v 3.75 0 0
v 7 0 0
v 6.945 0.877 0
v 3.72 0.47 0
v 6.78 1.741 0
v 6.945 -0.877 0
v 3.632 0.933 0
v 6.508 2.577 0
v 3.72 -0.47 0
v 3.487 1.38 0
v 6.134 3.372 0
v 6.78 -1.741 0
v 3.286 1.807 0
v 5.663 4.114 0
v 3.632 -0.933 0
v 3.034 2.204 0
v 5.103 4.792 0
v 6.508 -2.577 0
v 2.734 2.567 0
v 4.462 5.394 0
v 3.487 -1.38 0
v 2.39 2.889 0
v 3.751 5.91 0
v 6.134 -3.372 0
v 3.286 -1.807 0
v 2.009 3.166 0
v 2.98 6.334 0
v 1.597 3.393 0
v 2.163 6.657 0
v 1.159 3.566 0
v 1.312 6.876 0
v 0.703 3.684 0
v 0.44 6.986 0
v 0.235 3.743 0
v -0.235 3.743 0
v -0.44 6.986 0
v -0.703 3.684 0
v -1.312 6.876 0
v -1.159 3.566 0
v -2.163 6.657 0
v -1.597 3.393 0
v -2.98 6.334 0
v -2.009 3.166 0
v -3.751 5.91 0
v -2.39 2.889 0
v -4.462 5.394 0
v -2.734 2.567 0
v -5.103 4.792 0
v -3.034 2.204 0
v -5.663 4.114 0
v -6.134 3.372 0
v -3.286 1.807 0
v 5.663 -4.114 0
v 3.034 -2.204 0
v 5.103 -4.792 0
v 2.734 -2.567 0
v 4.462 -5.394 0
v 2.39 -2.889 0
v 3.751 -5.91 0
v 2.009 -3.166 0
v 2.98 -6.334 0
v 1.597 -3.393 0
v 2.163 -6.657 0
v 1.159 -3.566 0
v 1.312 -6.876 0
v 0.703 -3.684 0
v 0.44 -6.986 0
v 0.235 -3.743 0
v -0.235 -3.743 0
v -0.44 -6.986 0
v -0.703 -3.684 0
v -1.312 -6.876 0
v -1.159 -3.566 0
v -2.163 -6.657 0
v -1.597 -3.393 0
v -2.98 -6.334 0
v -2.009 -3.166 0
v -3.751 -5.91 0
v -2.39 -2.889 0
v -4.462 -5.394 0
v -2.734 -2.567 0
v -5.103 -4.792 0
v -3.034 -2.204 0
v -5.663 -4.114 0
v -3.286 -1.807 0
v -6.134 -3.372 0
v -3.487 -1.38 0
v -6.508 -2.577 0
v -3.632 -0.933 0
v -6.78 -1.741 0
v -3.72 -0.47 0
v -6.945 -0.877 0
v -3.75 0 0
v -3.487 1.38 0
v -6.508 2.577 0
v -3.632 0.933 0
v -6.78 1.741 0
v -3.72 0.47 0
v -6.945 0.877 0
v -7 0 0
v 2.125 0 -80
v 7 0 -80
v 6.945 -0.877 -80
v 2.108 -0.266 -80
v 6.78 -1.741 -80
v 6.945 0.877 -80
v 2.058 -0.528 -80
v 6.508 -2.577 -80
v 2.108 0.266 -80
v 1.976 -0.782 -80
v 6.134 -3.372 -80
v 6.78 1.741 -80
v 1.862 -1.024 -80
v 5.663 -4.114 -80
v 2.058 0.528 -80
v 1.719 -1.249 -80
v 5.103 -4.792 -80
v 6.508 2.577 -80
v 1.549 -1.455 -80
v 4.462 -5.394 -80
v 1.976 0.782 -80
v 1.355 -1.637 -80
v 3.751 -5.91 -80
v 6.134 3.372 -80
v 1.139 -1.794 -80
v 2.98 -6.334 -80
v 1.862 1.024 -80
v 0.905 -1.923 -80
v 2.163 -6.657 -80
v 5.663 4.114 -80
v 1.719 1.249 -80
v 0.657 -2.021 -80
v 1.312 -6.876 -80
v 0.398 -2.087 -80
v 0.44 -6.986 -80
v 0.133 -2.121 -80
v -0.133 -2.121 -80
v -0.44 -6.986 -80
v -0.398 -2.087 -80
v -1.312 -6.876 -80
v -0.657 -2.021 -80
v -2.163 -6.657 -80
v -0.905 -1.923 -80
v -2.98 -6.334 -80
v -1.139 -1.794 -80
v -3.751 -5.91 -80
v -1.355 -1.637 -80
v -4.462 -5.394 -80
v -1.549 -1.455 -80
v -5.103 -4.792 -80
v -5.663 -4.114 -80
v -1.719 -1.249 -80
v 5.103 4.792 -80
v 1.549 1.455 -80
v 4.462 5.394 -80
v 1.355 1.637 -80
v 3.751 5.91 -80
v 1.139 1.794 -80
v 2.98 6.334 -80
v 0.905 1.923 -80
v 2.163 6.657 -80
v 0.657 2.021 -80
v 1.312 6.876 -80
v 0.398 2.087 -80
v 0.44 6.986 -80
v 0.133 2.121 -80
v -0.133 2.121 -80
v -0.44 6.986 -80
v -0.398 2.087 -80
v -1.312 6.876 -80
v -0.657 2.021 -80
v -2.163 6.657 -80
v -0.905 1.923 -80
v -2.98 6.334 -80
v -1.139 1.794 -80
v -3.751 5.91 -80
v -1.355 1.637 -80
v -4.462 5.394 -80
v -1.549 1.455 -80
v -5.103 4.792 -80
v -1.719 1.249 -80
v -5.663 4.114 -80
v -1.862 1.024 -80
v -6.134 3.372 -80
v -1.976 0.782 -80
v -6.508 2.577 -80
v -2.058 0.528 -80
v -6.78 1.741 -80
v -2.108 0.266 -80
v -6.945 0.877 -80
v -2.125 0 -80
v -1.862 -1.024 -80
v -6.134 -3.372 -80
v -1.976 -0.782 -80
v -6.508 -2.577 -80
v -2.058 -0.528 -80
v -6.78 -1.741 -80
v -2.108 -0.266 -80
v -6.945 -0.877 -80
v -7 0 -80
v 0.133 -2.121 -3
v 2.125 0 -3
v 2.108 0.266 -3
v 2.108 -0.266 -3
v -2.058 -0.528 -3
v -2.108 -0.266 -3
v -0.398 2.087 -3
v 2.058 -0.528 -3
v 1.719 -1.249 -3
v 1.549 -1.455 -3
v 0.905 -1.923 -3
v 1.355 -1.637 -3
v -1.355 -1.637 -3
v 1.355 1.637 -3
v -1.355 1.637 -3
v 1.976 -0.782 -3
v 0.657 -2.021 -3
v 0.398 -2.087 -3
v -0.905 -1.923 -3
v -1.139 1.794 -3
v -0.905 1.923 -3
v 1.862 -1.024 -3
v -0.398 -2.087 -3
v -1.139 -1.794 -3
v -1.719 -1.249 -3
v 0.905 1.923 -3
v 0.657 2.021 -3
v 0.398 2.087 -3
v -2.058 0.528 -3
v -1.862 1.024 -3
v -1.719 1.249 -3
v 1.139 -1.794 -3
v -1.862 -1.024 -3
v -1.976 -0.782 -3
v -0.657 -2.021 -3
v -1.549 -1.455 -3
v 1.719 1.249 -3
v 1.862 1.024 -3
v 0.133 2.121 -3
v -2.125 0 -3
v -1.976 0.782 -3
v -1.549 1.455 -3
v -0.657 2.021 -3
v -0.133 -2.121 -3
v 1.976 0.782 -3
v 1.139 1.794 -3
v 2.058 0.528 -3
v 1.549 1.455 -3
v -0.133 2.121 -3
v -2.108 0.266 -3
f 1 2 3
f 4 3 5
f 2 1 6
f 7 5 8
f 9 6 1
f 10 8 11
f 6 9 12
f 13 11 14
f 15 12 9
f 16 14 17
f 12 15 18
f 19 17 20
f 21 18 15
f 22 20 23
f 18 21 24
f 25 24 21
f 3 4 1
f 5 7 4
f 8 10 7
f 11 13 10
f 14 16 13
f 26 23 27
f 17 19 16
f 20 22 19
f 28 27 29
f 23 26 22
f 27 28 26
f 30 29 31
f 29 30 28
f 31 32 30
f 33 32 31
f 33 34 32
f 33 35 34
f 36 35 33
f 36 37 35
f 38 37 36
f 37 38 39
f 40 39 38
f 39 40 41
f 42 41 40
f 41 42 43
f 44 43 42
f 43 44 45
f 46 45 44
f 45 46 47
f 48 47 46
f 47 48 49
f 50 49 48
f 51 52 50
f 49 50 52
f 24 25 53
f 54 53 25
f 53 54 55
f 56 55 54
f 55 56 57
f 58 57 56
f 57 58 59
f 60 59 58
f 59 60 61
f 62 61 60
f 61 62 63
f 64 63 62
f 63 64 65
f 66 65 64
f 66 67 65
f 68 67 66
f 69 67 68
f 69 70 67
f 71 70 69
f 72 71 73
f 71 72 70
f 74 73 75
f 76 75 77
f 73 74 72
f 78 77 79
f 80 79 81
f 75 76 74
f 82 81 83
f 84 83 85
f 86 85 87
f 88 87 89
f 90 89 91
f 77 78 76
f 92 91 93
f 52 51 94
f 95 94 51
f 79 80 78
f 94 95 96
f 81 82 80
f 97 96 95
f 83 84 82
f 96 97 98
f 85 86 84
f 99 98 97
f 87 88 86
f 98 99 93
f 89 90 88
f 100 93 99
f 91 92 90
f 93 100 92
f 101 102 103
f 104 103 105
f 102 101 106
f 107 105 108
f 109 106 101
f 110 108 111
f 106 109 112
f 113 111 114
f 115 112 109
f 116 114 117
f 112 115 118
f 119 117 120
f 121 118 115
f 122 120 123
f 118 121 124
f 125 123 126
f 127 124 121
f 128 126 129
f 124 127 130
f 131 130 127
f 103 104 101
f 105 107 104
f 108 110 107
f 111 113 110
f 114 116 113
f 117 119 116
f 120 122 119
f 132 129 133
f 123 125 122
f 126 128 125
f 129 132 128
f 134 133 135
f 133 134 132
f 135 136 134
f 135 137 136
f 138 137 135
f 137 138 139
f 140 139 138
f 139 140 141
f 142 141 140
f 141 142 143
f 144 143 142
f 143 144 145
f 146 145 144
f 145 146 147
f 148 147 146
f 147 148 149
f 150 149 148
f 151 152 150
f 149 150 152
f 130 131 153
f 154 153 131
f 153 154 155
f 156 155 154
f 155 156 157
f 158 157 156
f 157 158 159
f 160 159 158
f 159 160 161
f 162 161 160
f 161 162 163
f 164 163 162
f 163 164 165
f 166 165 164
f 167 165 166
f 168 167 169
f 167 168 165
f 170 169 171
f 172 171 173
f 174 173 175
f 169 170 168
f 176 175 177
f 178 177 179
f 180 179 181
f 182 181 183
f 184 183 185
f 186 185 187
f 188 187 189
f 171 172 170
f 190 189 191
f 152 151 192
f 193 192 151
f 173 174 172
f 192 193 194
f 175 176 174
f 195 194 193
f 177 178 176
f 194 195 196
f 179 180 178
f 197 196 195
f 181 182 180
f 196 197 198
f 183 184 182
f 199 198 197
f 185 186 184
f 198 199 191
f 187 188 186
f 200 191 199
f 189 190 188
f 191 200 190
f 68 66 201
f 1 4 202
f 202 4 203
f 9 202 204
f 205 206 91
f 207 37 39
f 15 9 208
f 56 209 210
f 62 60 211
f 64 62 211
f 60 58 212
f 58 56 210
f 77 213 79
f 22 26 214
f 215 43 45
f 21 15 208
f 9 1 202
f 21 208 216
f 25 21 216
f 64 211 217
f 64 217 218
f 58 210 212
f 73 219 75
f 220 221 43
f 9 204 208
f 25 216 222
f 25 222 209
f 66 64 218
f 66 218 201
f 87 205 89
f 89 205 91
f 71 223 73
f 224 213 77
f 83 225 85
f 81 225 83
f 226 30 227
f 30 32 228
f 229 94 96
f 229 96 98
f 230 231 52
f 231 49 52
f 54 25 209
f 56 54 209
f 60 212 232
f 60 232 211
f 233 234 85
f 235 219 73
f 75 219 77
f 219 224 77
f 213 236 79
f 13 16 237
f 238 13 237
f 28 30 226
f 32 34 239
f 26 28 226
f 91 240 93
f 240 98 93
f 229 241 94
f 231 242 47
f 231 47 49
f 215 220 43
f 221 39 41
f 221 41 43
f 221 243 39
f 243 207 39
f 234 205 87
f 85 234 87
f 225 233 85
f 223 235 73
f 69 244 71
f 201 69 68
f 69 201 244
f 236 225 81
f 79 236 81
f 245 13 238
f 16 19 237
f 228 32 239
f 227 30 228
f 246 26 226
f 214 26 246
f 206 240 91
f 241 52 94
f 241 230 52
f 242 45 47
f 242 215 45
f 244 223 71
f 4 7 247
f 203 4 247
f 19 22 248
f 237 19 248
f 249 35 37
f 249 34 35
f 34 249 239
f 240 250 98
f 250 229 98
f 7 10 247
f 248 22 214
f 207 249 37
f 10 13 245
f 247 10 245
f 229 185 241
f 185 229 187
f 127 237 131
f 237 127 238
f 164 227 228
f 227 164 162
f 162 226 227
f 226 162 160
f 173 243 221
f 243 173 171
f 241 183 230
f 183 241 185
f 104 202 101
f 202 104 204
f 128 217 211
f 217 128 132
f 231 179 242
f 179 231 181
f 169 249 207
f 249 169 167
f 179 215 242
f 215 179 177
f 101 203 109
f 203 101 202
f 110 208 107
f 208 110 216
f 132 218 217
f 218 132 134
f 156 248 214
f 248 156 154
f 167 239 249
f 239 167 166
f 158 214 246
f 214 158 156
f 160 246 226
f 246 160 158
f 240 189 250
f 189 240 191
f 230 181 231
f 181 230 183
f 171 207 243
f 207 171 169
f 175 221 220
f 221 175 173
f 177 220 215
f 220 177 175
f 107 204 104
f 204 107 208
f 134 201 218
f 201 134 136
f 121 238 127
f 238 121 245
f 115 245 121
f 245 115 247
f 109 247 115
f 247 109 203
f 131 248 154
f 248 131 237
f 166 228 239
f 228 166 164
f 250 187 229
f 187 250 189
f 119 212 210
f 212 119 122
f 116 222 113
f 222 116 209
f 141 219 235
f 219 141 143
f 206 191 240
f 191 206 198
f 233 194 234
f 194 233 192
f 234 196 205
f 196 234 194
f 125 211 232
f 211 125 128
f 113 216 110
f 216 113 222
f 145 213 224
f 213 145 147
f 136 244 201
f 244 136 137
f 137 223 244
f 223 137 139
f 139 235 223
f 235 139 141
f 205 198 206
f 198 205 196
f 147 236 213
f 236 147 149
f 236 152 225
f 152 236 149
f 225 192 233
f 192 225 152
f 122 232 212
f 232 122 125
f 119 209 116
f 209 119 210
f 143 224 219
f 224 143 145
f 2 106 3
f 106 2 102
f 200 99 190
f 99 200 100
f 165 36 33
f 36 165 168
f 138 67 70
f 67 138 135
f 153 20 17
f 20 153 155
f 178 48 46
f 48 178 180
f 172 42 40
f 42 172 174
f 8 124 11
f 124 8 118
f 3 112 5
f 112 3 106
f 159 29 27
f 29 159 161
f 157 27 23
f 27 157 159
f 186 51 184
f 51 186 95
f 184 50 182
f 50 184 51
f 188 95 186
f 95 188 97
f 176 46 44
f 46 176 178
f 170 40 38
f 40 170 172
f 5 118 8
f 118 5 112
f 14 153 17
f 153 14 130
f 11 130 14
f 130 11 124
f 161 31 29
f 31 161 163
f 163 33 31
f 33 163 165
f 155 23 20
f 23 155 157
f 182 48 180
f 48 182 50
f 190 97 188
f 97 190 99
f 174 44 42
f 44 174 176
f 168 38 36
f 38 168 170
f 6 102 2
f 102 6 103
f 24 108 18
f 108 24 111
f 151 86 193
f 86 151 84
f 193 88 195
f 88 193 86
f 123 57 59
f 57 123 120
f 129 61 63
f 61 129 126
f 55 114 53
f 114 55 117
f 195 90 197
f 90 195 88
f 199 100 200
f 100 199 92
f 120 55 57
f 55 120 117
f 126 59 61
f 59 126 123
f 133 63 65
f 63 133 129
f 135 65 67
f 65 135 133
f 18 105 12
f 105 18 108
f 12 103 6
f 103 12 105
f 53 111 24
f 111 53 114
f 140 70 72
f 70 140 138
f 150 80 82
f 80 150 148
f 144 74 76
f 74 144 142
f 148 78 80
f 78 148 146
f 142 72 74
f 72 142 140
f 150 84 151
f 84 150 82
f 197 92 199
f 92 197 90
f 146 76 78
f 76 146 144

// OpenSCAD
$fn = 50;


difference() {
	union() {
		translate(v = [0, 0, -80.0000000000]) {
			cylinder(h = 80, r = 7.0000000000);
		}
		cylinder(h = 0, r = 17.0000000000);
	}
	union() {
		translate(v = [0, 0, 0]) {
			rotate(a = [0, 0, 0]) {
				difference() {
					union() {
						#translate(v = [0, 0, -80.0000000000]) {
							cylinder(h = 80, r = 2.0000000000);
						}
						#translate(v = [0, 0, -3]) {
							cylinder(h = 3, r1 = 2.1250000000, r2 = 3.7500000000);
						}
						#translate(v = [0, 0, -80.0000000000]) {
							cylinder(h = 80, r = 2.1250000000);
						}
						#translate(v = [0, 0, -80.0000000000]) {
							cylinder(h = 80, r = 2.0000000000);
						}
					}
					union();
				}
			}
		}
	}
}
